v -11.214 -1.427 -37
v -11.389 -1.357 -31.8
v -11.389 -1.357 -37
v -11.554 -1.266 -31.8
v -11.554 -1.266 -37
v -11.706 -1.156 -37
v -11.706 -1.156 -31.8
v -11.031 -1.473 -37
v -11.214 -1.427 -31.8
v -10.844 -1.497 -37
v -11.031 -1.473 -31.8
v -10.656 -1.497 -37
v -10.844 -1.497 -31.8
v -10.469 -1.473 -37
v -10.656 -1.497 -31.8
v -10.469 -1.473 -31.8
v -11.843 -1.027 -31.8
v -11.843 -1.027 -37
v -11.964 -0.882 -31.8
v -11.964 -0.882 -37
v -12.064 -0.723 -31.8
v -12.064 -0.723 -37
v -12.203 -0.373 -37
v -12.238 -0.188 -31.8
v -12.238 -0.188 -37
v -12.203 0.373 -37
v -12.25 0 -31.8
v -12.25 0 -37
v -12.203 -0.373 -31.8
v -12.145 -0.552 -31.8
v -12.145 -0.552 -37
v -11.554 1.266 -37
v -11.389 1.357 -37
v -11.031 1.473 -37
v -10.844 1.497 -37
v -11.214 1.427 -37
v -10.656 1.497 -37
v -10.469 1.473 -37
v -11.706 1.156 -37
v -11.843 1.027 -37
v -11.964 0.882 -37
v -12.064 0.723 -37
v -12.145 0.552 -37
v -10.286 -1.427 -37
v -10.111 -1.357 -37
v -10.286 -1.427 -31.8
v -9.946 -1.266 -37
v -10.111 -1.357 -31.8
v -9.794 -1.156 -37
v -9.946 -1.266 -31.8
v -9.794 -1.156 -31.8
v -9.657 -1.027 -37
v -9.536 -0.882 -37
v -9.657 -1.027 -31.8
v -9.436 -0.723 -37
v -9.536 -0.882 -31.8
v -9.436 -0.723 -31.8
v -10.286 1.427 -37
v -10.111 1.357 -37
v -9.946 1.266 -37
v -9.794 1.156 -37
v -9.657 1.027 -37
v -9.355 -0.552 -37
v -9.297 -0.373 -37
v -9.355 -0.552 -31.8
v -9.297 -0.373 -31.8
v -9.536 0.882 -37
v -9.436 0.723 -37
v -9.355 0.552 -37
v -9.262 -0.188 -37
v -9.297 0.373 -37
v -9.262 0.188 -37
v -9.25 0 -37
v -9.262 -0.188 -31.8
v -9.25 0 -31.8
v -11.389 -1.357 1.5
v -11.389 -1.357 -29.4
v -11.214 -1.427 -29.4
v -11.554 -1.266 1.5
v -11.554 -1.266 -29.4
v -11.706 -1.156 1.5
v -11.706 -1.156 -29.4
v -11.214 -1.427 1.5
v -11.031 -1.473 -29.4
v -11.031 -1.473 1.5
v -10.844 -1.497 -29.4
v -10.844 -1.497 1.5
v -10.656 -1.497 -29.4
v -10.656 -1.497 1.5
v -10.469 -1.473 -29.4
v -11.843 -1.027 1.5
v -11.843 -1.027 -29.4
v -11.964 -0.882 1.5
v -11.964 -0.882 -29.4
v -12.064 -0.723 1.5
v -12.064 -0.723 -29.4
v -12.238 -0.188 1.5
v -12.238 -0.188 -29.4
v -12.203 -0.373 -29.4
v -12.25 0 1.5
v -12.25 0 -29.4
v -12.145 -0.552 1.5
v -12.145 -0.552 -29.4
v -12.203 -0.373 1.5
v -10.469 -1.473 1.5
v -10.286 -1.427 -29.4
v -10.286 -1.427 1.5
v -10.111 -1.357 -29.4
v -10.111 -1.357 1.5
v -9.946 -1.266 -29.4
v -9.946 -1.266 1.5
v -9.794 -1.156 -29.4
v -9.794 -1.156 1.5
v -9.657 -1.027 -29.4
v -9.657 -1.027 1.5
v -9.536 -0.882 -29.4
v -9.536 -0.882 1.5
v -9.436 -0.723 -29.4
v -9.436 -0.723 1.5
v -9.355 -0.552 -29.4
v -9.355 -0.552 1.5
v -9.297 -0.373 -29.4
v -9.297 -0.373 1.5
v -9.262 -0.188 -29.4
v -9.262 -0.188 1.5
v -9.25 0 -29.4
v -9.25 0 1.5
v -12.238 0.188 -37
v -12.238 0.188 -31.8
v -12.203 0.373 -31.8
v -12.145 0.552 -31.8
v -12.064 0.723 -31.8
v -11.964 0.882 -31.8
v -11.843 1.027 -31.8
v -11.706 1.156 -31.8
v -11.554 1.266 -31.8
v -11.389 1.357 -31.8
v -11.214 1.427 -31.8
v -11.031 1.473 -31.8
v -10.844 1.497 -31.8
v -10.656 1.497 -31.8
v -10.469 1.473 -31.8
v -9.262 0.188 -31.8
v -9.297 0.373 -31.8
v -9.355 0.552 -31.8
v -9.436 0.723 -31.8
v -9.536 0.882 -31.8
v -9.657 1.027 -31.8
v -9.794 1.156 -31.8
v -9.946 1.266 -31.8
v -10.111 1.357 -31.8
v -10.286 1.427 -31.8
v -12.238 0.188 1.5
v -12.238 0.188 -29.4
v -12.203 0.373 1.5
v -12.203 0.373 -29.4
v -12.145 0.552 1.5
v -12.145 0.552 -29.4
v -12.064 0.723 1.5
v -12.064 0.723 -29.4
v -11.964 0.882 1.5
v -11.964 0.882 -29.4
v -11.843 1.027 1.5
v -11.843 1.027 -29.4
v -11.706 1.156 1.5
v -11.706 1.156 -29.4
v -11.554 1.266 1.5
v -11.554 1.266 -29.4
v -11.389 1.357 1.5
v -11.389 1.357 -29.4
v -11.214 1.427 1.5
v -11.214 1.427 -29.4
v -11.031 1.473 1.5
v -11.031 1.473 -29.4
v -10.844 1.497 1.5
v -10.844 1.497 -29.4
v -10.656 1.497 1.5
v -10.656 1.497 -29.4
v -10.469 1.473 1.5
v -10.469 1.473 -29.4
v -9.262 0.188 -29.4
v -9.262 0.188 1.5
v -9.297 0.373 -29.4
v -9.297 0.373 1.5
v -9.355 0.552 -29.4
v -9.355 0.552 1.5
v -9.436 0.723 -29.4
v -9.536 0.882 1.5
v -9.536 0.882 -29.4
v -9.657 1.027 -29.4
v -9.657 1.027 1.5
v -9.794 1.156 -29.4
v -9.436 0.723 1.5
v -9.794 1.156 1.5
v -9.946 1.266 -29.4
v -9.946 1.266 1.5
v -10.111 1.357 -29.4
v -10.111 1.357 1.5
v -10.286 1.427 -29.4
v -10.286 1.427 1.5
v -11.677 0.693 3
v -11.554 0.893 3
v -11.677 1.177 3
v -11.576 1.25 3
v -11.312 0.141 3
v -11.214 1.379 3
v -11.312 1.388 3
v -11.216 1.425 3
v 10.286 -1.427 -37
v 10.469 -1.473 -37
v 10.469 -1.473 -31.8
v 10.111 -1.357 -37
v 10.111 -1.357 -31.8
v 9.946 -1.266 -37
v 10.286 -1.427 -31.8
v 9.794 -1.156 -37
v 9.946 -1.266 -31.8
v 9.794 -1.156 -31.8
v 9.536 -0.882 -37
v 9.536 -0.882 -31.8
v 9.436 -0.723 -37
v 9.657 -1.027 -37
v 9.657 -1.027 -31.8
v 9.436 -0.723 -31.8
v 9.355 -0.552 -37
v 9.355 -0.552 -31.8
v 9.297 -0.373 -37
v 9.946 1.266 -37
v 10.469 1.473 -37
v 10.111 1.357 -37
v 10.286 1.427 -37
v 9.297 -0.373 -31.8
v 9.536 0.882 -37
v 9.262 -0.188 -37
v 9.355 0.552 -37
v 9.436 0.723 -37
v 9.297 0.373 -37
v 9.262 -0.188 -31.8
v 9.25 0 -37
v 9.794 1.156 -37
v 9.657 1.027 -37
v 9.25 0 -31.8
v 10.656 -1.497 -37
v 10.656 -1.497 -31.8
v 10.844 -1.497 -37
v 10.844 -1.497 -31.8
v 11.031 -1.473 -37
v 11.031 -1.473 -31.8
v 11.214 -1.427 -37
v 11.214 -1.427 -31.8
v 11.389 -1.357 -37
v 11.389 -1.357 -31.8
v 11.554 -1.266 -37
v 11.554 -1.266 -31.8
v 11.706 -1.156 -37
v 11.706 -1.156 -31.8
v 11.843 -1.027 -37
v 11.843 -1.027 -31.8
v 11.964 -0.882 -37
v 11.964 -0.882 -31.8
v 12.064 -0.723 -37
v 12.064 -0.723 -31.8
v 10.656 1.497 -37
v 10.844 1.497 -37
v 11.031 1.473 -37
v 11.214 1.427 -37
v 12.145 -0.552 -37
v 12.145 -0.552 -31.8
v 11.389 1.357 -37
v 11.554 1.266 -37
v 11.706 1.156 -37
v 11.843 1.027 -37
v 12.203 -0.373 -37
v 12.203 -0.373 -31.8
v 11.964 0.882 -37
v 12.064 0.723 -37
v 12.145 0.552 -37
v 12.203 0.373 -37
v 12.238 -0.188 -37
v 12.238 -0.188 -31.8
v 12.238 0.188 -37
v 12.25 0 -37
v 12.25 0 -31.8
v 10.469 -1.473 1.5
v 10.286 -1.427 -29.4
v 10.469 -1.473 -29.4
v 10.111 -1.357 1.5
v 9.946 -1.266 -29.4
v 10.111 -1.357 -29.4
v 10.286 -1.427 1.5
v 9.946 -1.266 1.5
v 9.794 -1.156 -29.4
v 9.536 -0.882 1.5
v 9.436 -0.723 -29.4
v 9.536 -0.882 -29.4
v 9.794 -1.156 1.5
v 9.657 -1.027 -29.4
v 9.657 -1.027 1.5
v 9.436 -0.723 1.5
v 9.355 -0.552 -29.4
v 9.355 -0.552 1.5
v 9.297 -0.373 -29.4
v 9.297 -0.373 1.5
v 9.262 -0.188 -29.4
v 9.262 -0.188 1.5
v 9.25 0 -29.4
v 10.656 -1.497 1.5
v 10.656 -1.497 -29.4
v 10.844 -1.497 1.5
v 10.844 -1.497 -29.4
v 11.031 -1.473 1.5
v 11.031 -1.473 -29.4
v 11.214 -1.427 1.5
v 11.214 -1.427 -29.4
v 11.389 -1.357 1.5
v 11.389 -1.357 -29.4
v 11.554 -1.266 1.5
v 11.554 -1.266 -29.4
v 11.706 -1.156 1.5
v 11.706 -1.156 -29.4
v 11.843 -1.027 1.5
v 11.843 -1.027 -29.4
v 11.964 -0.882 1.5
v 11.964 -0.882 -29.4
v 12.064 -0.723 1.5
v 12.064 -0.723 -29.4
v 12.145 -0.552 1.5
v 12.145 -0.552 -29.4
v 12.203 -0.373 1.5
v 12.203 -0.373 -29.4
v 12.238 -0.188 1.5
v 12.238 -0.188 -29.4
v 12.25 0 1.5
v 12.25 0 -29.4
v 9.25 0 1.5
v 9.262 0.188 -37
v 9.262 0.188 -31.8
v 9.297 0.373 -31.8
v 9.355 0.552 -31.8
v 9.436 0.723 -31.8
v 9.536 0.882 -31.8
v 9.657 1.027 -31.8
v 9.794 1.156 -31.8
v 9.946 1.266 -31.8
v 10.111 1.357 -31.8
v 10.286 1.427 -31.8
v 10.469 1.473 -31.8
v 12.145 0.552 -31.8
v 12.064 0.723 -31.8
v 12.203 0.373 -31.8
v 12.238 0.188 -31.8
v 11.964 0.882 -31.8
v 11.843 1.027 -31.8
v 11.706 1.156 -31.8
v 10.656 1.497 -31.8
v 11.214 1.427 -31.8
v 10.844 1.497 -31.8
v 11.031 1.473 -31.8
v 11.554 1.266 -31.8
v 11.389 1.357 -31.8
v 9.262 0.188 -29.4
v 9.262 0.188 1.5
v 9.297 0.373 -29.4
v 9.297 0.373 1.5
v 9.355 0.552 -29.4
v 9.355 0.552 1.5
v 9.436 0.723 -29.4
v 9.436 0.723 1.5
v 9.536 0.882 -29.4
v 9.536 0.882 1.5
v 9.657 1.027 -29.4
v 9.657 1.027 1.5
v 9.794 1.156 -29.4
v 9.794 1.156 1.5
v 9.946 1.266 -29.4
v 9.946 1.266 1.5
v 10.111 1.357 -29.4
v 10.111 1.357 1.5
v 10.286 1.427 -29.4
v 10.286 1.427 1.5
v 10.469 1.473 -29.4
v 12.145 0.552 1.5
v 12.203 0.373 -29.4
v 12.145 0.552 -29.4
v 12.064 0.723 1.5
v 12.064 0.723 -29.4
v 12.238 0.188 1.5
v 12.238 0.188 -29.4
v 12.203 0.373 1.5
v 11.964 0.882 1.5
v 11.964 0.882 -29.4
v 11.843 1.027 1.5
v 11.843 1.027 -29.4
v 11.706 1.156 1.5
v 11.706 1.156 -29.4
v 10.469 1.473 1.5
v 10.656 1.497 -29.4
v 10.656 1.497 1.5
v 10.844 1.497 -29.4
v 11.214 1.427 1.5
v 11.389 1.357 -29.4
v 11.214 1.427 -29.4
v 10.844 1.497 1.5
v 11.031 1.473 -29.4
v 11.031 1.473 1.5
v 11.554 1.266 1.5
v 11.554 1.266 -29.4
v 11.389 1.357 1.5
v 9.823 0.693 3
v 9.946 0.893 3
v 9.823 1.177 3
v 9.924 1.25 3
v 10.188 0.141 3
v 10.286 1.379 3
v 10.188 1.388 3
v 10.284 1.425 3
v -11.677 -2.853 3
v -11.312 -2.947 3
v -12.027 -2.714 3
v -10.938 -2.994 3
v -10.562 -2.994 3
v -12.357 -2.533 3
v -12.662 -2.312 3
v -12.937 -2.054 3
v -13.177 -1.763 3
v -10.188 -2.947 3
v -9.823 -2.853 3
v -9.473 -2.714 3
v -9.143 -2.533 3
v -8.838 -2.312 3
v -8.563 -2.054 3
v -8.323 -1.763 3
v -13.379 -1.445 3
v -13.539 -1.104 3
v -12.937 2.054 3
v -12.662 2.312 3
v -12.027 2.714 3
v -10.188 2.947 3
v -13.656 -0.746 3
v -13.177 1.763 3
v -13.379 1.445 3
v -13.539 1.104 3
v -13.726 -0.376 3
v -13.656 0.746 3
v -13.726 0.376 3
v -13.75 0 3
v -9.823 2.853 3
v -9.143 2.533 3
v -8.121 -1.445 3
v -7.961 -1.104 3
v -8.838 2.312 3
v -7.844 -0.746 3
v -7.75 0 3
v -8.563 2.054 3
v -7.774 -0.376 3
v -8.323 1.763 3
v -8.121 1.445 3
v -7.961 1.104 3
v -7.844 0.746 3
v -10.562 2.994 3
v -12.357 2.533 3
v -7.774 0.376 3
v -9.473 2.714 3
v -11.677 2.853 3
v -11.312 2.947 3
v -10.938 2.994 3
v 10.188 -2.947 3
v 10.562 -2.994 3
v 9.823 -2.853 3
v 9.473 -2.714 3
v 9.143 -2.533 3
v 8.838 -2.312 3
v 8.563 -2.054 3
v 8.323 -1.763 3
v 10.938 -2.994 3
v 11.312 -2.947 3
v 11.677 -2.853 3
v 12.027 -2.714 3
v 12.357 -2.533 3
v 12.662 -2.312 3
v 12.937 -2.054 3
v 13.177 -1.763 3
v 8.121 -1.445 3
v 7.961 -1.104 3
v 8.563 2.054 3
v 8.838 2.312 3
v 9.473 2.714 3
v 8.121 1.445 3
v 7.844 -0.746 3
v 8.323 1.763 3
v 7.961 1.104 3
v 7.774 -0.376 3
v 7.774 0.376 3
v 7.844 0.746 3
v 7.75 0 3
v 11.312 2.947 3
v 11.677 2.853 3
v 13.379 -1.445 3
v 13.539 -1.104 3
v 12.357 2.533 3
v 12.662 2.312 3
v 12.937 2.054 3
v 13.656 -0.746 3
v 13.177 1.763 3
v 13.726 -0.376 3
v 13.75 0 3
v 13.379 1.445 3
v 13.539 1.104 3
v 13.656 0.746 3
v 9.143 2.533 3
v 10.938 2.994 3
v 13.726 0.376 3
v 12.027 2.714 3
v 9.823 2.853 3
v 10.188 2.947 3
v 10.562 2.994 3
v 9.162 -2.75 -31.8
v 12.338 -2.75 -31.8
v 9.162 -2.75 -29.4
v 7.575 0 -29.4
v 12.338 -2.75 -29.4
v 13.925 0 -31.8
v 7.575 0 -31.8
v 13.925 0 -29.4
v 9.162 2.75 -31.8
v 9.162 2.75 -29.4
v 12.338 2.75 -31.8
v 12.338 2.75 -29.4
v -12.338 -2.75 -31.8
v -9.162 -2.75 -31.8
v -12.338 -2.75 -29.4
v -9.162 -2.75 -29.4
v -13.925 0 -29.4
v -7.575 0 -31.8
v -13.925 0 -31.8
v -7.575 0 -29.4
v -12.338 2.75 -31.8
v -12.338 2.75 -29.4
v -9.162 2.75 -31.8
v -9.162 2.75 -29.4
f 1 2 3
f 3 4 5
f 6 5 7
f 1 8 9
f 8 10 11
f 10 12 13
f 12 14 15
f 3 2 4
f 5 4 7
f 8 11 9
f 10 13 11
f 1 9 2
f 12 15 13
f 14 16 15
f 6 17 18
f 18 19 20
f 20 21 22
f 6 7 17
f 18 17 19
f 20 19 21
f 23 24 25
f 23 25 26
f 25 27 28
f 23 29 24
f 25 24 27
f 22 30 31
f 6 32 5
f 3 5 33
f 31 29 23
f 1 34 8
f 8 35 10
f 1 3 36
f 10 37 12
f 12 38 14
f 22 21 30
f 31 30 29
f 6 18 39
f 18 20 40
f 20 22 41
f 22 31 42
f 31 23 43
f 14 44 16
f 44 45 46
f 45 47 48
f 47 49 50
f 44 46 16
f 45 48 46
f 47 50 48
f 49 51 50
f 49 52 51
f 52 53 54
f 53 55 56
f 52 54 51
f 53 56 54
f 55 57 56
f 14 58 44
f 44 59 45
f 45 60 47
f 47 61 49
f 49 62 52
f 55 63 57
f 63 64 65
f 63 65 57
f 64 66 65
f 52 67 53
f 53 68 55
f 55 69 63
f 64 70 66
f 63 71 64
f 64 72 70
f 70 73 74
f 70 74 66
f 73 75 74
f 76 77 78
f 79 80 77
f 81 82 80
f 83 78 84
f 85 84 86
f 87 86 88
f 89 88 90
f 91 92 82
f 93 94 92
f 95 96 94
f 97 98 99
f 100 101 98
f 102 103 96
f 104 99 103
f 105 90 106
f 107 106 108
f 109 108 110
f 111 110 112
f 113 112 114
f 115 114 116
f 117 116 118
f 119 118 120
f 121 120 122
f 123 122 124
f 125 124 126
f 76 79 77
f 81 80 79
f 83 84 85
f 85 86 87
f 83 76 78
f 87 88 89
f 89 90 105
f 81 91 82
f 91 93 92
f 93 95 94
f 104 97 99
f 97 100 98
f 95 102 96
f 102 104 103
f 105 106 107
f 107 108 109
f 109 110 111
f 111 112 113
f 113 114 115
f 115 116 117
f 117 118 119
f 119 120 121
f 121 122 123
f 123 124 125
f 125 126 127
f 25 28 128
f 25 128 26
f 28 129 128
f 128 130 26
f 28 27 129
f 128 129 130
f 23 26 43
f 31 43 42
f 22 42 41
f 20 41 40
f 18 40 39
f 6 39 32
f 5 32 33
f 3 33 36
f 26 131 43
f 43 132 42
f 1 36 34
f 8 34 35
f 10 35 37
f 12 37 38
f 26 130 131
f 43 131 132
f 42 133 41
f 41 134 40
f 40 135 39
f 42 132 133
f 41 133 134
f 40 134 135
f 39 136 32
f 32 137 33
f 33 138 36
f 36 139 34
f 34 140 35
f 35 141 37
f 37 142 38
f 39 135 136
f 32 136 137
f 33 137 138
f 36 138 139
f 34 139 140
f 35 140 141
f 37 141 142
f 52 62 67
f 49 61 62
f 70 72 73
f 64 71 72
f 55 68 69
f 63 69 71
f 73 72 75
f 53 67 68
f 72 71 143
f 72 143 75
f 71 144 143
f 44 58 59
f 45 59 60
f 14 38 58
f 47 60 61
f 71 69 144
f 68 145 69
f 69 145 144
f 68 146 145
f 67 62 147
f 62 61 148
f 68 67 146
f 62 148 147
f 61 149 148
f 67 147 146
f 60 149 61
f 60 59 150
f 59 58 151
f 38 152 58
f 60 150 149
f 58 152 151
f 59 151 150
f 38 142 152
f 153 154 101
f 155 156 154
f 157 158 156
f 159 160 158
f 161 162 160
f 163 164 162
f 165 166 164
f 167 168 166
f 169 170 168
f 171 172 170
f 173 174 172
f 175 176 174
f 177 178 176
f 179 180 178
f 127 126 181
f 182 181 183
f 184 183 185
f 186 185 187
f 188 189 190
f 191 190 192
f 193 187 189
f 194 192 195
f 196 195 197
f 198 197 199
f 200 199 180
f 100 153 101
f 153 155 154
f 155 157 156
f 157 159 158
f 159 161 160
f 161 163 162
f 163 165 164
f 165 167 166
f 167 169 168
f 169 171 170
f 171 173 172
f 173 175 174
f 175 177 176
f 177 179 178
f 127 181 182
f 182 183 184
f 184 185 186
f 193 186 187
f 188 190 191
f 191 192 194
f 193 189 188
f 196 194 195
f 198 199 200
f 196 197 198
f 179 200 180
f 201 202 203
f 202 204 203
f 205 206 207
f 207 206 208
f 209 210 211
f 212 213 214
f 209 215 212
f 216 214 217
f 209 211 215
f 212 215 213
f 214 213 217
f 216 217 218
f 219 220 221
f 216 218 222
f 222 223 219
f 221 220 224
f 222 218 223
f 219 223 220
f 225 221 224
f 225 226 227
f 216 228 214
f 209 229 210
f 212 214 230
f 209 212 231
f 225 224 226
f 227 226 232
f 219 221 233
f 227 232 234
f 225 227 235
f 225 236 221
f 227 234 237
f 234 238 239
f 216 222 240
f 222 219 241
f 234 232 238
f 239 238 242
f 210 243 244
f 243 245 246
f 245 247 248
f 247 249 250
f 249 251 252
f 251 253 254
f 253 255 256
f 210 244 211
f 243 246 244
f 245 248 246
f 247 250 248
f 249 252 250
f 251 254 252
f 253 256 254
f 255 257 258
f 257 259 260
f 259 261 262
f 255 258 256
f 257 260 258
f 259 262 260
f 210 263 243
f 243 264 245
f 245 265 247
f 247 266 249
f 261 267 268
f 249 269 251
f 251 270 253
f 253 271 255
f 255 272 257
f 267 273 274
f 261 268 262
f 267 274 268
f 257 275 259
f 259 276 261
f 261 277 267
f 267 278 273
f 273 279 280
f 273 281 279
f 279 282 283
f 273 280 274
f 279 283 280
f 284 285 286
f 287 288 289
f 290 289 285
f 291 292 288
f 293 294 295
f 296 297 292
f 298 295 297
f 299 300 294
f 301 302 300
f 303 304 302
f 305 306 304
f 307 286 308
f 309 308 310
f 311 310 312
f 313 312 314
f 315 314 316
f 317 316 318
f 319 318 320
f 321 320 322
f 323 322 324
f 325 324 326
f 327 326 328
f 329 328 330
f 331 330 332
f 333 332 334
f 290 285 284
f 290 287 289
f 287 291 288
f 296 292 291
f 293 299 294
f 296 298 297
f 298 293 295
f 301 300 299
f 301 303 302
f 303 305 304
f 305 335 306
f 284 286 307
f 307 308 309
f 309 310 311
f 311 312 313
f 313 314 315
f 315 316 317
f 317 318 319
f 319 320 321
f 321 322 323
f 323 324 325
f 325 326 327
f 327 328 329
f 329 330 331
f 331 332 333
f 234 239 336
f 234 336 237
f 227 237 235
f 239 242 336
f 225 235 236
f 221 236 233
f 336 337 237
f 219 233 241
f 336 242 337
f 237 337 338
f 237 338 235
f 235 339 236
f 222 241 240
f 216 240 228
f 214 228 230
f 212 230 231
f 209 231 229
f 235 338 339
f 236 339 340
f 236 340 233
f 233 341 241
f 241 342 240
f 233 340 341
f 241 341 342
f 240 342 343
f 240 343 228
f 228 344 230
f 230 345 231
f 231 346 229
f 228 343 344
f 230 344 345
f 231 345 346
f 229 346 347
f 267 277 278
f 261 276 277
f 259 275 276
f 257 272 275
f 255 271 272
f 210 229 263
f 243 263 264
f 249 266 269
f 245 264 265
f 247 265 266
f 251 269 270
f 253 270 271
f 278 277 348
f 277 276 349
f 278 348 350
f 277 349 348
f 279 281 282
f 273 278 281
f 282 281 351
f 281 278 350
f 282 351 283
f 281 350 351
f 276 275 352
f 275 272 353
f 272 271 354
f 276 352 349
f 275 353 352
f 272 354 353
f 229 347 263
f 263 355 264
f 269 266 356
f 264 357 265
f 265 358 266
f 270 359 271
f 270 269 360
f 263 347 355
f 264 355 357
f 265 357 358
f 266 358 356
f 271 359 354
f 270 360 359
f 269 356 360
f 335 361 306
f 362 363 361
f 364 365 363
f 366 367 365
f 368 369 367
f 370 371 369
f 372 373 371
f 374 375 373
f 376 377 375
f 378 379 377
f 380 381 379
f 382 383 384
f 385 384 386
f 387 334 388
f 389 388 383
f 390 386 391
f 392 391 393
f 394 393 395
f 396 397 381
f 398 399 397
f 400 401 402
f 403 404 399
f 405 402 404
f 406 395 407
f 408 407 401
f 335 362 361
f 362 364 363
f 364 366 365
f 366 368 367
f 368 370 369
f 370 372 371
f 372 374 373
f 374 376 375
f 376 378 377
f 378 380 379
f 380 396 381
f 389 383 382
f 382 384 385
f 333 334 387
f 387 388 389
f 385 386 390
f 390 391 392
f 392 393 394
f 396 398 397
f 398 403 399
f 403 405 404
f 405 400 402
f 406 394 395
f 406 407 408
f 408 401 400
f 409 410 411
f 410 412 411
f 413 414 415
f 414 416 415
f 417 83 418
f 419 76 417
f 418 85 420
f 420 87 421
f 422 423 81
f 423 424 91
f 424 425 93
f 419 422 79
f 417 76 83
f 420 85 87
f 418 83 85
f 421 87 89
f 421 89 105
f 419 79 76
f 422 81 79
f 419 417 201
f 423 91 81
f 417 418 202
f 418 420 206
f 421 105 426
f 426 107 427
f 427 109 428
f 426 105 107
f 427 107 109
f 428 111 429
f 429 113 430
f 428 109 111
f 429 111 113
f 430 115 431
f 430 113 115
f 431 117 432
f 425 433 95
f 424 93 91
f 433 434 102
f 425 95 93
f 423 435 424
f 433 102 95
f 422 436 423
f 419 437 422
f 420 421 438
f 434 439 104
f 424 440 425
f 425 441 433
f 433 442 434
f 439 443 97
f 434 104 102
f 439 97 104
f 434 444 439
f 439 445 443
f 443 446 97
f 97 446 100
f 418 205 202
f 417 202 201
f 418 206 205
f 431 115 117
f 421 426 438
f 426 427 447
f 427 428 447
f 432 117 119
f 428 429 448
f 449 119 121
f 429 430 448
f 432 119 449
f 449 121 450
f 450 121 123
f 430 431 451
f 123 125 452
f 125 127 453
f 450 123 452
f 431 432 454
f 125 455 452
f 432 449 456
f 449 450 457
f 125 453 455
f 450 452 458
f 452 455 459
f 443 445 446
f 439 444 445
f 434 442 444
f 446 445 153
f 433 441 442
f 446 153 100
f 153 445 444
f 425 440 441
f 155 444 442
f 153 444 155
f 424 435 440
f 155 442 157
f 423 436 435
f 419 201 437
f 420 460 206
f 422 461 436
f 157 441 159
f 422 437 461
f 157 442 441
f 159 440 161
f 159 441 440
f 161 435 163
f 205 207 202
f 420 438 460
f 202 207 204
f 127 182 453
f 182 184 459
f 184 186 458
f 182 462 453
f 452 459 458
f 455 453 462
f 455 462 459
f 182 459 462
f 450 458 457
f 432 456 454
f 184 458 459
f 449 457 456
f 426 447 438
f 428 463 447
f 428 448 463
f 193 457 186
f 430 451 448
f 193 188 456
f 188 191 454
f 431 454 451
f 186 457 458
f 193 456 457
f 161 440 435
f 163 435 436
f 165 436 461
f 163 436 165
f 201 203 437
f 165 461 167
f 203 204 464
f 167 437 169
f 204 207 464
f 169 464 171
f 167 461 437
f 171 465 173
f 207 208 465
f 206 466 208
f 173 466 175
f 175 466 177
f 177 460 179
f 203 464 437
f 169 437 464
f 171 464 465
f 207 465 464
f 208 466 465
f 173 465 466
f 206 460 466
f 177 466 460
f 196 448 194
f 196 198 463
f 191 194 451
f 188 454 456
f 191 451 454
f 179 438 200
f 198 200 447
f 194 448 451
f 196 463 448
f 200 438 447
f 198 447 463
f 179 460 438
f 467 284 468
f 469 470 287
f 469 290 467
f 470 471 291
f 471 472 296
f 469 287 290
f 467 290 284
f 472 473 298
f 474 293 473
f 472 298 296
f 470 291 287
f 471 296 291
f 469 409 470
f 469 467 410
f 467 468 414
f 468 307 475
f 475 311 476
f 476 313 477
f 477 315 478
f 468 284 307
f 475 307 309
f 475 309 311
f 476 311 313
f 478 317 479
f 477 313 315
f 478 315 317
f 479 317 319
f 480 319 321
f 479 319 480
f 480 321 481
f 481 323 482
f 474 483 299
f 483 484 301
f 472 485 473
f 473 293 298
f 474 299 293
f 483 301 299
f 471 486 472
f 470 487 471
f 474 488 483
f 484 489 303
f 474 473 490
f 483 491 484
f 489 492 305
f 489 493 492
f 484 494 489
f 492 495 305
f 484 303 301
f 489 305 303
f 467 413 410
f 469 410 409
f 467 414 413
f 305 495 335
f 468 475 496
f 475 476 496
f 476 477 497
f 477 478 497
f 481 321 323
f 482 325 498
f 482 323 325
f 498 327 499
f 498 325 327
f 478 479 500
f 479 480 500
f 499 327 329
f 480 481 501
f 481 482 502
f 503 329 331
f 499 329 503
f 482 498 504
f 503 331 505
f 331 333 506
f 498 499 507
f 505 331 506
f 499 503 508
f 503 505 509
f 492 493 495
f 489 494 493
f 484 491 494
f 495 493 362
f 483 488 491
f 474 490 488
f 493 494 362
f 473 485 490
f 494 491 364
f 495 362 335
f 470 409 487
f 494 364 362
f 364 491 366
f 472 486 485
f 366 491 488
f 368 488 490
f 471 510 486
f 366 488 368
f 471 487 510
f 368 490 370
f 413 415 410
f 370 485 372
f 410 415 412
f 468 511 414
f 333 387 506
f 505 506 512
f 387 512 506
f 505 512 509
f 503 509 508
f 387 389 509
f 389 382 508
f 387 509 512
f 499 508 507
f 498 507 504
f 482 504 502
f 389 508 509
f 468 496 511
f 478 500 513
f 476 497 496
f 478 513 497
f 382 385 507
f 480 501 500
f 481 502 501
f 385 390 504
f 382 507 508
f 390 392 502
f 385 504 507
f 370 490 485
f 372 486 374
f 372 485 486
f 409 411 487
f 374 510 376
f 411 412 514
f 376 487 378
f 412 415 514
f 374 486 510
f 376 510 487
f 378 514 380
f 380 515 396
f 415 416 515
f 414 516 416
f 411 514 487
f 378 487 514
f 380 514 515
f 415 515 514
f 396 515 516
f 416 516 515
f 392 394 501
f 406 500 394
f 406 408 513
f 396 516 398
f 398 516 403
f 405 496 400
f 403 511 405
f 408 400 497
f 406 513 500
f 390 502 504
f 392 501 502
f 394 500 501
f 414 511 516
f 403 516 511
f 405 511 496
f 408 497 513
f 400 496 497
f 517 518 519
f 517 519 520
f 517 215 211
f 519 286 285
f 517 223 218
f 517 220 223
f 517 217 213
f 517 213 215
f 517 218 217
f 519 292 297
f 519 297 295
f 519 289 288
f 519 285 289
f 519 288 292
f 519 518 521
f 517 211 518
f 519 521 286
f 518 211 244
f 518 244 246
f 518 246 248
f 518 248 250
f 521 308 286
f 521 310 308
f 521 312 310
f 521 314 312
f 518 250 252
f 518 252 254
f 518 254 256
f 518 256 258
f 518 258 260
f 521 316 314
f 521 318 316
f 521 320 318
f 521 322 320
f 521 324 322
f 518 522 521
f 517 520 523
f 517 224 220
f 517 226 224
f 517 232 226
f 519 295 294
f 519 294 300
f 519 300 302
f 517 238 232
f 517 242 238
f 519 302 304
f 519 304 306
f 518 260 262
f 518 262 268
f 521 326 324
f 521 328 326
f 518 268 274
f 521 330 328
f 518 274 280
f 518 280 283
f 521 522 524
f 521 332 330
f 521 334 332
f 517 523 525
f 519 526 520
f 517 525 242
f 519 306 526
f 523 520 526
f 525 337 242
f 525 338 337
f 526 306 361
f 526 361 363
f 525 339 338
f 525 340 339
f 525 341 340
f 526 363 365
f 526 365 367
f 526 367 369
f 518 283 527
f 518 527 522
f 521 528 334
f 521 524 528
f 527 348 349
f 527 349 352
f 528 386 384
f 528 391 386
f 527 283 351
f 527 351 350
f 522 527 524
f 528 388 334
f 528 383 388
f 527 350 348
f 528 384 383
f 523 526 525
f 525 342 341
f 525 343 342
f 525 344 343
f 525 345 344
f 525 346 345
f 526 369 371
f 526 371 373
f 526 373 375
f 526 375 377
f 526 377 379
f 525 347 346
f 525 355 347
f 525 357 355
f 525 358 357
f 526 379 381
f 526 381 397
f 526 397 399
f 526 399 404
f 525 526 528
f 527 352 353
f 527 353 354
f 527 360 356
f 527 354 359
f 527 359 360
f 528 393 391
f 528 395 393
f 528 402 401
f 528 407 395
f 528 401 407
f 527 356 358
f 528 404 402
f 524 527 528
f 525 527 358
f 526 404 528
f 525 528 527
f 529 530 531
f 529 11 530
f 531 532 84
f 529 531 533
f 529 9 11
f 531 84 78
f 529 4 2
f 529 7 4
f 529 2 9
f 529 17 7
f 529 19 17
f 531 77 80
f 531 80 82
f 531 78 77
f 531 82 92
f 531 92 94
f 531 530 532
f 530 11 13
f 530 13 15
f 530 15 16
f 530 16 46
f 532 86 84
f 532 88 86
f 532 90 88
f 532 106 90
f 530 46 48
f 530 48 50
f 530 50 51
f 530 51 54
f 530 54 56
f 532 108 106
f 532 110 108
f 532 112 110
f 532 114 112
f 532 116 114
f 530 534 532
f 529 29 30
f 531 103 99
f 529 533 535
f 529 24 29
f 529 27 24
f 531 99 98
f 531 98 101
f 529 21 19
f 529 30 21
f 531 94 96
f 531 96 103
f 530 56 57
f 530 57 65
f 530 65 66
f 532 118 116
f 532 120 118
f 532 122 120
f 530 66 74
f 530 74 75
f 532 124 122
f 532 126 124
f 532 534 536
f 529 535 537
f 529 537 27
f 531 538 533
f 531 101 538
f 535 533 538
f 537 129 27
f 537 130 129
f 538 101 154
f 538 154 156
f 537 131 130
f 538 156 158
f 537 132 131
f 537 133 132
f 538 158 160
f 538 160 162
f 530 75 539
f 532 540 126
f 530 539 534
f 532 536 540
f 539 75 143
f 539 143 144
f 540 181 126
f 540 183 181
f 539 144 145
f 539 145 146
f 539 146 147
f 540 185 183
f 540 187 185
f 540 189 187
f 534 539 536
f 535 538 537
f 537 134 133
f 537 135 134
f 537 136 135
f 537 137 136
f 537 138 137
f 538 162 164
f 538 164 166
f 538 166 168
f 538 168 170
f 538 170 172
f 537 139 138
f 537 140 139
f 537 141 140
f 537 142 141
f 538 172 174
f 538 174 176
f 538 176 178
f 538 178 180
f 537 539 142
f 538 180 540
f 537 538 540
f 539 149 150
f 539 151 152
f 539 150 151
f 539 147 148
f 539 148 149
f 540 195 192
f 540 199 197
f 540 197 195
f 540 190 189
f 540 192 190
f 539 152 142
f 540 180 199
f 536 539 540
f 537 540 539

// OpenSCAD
$fn = 50;

difference() {
	union() {
		translate(v = [-10.75, 0, 3]) {
			rotate(a = [0, 0, 0]) {
				difference() {
					union() {
						translate(v = [0, 0, -40.0]) {
							cylinder(h = 40, r = 1.5);
						}
						translate(v = [0, 0, -1.5]) {
							cylinder(h = 1.5, r1 = 1.5, r2 = 3);
						}
					}
					union();
				}
			}
		}
		translate(v = [-10.75, 0, -31.799999999999997]) {
			rotate(a = [0, 0, 0]) {
				difference() {
					union() {
						linear_extrude(height = 2.4) {
							polygon(points = [[3.1754264805429417, 0.0], [1.5877132402714713, 2.75], [-1.5877132402714702, 2.7500000000000004], [-3.1754264805429417, 3.888775875324659e-16], [-1.5877132402714722, -2.7499999999999996], [1.5877132402714687, -2.7500000000000013]]);
						}
					}
					union();
				}
			}
		}
		translate(v = [10.75, 0, 3]) {
			rotate(a = [0, 0, 0]) {
				difference() {
					union() {
						translate(v = [0, 0, -40.0]) {
							cylinder(h = 40, r = 1.5);
						}
						translate(v = [0, 0, -1.5]) {
							cylinder(h = 1.5, r1 = 1.5, r2 = 3);
						}
					}
					union();
				}
			}
		}
		translate(v = [10.75, 0, -31.799999999999997]) {
			rotate(a = [0, 0, 0]) {
				difference() {
					union() {
						linear_extrude(height = 2.4) {
							polygon(points = [[3.1754264805429417, 0.0], [1.5877132402714713, 2.75], [-1.5877132402714702, 2.7500000000000004], [-3.1754264805429417, 3.888775875324659e-16], [-1.5877132402714722, -2.7499999999999996], [1.5877132402714687, -2.7500000000000013]]);
						}
					}
					union();
				}
			}
		}
	}
	union();
}
